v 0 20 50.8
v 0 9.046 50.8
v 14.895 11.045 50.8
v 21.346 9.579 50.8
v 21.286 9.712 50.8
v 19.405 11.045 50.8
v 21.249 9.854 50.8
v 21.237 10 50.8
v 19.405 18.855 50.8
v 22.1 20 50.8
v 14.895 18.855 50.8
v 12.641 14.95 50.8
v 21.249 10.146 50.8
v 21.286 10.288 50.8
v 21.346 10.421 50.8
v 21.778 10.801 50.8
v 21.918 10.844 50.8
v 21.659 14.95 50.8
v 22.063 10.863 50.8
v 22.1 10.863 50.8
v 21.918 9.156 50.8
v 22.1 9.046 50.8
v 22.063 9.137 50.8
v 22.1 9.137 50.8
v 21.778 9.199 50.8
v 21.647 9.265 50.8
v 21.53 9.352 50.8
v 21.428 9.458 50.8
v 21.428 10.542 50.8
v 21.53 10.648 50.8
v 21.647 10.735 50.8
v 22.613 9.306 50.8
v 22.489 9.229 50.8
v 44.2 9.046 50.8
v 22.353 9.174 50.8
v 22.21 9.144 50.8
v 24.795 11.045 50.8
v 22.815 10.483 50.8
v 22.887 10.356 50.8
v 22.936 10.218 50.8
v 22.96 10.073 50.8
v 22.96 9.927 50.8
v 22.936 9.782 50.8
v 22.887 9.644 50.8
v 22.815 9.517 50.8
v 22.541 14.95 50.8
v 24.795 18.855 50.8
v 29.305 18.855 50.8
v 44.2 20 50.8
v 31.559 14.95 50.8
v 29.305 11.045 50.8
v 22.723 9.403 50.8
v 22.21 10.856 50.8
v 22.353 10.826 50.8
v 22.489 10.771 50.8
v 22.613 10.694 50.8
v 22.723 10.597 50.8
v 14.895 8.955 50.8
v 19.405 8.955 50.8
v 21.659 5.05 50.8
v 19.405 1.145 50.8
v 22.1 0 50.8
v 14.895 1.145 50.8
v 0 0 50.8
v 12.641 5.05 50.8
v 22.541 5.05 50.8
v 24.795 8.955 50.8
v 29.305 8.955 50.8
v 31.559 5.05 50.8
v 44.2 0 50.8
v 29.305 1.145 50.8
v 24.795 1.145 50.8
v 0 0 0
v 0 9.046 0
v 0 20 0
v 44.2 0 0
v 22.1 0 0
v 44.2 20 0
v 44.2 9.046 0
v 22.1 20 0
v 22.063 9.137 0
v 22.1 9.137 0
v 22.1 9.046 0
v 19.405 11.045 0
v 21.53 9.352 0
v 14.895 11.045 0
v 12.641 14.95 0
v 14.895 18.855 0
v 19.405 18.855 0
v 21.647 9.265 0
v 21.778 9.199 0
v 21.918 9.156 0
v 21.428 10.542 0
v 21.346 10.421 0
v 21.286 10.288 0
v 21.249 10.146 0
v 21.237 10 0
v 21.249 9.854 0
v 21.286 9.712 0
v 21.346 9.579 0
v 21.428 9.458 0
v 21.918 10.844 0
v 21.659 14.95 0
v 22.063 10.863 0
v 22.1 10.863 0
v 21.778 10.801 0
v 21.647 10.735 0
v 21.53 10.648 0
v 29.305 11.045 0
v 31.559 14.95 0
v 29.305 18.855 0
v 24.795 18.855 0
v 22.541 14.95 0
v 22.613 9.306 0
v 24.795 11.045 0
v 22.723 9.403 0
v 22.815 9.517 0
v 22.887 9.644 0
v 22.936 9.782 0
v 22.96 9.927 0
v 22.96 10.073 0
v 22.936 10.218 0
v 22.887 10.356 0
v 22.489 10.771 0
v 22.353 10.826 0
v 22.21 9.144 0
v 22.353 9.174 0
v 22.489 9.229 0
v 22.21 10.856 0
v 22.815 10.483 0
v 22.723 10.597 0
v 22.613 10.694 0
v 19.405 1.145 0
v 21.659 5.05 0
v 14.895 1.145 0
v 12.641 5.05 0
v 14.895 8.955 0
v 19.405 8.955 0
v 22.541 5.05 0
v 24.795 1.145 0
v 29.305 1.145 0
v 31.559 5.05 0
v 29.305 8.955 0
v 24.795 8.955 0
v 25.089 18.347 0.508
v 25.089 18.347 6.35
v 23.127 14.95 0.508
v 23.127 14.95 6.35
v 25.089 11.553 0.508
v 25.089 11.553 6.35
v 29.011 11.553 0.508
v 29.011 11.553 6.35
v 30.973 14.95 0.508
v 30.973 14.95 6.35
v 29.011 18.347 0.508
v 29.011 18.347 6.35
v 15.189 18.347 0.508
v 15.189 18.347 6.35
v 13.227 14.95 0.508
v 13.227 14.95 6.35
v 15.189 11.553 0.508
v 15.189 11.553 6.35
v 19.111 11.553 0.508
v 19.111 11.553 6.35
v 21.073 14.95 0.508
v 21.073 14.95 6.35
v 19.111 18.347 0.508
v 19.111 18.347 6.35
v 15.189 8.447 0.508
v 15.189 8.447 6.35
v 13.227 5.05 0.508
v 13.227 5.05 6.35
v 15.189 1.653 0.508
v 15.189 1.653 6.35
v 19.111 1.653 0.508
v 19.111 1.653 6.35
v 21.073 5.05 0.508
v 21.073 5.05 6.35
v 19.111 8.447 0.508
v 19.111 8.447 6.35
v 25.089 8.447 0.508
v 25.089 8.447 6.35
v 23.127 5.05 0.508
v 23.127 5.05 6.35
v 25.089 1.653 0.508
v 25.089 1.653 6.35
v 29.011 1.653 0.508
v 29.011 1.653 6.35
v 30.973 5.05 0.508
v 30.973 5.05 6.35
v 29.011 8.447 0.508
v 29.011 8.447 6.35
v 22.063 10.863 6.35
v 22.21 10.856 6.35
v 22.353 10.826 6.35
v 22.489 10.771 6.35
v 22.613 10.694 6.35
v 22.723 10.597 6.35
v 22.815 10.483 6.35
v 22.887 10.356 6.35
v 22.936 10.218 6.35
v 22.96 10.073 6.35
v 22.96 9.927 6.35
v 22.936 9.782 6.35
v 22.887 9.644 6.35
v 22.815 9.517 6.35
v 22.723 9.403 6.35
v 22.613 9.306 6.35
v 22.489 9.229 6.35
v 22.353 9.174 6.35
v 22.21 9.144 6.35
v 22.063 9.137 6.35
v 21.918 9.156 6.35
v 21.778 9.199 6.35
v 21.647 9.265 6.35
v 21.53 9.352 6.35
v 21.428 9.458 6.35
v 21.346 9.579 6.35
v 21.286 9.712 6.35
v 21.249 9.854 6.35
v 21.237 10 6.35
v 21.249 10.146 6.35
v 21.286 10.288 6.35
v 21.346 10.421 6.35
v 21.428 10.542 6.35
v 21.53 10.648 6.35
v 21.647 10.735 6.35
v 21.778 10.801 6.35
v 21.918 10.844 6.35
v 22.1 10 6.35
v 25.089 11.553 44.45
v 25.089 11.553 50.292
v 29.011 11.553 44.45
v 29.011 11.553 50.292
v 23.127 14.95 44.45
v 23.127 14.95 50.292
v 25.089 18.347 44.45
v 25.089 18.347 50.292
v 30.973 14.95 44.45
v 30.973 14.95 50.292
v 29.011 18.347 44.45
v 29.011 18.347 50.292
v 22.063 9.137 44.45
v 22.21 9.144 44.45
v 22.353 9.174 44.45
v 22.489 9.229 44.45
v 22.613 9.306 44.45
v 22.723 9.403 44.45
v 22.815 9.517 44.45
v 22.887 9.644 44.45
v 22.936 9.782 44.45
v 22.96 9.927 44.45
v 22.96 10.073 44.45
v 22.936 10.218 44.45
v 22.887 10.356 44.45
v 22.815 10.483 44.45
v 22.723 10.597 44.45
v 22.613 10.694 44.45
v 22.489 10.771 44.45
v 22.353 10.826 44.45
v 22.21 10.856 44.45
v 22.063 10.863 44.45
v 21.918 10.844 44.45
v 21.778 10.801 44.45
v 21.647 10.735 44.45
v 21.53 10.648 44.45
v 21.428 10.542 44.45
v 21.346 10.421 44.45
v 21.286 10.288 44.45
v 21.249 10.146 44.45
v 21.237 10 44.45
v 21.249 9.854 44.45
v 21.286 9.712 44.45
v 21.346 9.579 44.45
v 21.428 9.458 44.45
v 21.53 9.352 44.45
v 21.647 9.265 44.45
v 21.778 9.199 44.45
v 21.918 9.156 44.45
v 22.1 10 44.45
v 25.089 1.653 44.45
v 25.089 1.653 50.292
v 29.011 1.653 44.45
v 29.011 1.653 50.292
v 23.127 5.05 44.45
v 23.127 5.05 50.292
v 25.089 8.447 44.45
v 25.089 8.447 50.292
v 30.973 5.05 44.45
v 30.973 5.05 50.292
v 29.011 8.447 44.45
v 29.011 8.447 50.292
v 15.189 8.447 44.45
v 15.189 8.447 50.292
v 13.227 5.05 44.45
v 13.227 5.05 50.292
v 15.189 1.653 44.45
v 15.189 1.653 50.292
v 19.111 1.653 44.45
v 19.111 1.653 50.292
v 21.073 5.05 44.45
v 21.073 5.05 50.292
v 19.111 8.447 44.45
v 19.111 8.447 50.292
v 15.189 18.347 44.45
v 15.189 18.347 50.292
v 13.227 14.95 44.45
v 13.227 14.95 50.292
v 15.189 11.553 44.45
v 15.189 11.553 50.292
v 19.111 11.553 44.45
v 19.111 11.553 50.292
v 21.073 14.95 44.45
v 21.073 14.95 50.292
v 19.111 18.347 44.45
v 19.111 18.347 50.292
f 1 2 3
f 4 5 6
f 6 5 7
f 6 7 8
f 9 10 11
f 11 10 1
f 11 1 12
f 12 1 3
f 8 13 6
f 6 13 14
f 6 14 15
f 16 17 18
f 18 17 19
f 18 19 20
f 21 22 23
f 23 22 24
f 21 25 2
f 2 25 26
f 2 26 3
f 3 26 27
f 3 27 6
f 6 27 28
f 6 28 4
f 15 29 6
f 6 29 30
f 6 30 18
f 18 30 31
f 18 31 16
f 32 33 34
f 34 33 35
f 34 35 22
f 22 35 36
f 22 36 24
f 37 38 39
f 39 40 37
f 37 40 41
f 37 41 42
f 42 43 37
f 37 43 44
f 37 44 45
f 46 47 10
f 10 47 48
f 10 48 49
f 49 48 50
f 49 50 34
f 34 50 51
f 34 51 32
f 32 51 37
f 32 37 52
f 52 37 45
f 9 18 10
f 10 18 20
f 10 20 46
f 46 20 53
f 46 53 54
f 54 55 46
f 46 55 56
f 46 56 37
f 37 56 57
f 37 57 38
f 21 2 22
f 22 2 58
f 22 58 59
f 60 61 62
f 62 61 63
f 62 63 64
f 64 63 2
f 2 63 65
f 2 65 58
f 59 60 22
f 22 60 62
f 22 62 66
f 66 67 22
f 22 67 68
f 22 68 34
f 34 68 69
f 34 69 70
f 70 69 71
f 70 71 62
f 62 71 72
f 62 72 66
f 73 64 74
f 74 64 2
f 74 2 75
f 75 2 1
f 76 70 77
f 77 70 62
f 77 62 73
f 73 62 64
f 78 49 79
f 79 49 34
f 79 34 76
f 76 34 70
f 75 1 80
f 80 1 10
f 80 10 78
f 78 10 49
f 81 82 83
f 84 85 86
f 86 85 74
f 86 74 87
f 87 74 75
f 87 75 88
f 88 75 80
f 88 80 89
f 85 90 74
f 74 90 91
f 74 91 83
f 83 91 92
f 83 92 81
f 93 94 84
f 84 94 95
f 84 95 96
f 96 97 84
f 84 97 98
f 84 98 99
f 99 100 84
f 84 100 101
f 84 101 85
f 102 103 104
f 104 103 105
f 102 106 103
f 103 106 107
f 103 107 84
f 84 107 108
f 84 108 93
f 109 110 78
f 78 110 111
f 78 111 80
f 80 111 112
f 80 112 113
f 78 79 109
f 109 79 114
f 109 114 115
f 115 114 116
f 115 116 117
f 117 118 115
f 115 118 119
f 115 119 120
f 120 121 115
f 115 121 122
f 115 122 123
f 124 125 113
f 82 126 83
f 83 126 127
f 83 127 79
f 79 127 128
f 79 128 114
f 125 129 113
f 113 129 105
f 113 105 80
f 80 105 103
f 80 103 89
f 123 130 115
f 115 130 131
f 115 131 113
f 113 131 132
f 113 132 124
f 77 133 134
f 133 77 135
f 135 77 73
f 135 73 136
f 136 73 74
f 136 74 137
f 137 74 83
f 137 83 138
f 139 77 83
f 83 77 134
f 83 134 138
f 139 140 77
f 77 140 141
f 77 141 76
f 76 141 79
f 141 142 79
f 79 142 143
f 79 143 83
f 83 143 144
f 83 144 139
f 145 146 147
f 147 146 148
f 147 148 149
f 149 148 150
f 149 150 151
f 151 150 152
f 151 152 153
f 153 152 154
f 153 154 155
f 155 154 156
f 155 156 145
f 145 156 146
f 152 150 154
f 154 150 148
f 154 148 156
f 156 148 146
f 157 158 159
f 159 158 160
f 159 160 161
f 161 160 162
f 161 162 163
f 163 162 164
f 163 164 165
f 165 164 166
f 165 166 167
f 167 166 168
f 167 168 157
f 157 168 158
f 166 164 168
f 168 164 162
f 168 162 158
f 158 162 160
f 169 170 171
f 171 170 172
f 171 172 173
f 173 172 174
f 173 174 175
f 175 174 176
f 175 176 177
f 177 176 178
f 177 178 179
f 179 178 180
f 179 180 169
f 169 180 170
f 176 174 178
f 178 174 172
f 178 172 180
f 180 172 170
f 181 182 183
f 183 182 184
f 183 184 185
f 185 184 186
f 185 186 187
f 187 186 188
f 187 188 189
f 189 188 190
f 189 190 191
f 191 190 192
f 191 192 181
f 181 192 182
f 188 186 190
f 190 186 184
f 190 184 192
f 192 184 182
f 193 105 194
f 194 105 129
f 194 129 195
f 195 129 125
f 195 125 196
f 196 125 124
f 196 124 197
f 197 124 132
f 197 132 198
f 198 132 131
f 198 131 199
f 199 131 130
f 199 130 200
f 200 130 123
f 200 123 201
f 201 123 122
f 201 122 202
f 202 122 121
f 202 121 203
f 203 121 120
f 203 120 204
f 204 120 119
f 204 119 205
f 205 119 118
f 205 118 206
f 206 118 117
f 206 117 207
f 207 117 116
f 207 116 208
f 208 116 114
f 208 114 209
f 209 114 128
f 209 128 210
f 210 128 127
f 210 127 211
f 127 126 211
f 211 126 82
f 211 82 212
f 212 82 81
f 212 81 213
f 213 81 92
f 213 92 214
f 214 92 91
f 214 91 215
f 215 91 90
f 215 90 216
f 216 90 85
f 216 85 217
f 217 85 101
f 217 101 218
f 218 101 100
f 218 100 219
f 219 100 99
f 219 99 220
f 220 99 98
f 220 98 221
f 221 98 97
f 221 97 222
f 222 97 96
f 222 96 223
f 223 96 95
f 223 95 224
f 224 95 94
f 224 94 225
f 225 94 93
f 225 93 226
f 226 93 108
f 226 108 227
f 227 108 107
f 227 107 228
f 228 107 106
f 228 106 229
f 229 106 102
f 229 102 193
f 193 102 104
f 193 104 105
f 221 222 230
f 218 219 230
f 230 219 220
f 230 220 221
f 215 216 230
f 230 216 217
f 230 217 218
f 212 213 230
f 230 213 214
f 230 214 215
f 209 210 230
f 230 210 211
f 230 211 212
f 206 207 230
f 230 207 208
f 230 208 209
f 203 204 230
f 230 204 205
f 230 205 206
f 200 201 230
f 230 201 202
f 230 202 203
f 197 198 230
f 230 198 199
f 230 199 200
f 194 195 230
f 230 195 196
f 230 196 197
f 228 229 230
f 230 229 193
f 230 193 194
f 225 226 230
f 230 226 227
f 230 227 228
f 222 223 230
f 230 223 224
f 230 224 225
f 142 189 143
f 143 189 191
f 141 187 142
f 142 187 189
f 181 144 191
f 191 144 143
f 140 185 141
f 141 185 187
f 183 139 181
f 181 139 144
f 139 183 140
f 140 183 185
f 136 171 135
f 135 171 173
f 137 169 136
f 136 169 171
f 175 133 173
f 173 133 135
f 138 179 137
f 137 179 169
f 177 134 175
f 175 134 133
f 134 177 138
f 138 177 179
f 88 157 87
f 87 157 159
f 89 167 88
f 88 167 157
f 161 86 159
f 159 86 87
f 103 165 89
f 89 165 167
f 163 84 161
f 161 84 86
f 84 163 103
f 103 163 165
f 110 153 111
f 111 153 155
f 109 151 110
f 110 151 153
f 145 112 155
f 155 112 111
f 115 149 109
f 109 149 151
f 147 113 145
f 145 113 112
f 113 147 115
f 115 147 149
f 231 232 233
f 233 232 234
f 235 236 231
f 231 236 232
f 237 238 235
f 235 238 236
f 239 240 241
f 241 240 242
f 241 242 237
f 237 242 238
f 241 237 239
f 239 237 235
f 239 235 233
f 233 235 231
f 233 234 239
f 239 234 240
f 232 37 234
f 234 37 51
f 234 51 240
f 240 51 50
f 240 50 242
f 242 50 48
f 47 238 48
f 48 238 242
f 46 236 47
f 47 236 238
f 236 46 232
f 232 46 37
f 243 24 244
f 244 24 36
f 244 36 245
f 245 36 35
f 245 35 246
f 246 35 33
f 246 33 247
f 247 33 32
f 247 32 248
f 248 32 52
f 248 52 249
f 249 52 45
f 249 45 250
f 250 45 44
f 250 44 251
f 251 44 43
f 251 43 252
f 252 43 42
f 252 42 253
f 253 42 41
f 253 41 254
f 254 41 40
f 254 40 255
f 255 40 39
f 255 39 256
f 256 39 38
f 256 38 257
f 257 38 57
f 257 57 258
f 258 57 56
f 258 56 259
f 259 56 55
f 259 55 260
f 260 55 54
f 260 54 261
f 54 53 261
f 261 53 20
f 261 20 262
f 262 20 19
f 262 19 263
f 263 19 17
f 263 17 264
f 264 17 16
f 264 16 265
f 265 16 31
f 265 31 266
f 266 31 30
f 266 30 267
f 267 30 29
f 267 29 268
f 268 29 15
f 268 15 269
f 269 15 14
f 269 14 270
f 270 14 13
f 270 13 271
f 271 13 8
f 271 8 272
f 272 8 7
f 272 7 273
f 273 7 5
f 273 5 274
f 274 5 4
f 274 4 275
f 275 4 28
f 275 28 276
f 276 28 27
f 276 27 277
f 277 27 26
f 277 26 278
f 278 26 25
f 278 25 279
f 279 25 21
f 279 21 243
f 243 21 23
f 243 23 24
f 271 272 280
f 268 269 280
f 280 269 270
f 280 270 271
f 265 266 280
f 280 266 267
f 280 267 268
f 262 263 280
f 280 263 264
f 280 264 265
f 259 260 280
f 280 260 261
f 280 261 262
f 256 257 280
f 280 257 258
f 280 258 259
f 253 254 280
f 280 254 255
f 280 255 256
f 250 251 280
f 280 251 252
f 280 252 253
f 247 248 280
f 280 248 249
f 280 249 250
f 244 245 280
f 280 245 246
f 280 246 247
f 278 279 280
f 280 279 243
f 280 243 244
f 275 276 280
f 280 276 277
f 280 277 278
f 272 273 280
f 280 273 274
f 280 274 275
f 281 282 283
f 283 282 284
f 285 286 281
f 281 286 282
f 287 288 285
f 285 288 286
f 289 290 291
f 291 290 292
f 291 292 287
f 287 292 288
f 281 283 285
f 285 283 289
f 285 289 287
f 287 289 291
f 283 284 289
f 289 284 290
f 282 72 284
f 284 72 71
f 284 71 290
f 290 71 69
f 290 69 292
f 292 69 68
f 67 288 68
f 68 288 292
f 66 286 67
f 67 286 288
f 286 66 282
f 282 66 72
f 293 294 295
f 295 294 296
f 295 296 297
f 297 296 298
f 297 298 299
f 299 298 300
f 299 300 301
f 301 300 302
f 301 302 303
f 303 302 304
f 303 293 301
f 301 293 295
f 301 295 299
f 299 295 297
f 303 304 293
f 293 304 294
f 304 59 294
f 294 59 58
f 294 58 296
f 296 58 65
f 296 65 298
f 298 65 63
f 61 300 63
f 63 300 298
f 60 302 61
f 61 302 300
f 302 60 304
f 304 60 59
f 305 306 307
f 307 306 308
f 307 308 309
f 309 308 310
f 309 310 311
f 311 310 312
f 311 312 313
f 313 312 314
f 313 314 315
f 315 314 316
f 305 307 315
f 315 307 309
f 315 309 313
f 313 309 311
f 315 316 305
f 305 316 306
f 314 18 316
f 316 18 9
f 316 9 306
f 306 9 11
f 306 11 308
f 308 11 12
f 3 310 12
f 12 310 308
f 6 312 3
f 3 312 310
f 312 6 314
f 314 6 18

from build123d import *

# Parameters (mm, degrees)
SKETCH1_W                = 44.2
SKETCH1_H                = 20
BOSS_EXTRUDE1_DEPTH      = 50.8
SKETCH2_R                = 0.863384433
CUT_EXTRUDE1_DEPTH       = 6.35
CHAMFER1_SIZE            = 0.508
CHAMFER1_OF_MIRROR2_SIZE = 0.508


with BuildPart() as part:
    # Sketch1 → Boss-Extrude1 (new body)
    with BuildSketch(Plane.XY):
        with Locations((22.1, 10)):
            Rectangle(SKETCH1_W, SKETCH1_H)
    extrude(amount=BOSS_EXTRUDE1_DEPTH)

    # Sketch2 → Cut-Extrude1 (cut)
    with BuildSketch(Plane(origin=(0, 0, 0), x_dir=(-1, 0, 0), z_dir=(0, 0, -1))):
        with Locations((-22.1, 10)):
            Circle(SKETCH2_R)
        Polygon((-25.088596798, 18.34725), (-29.011403202, 18.34725), (-30.972806404, 14.95), (-29.011403202, 11.55275), (-25.088596798, 11.55275), (-23.127193596, 14.95), align=None)
        Polygon((-15.188596798, 18.34725), (-19.111403202, 18.34725), (-21.072806404, 14.95), (-19.111403202, 11.55275), (-15.188596798, 11.55275), (-13.227193596, 14.95), align=None)
        Polygon((-15.188596798, 8.44725), (-19.111403202, 8.44725), (-21.072806404, 5.05), (-19.111403202, 1.65275), (-15.188596798, 1.65275), (-13.227193596, 5.05), align=None)
        Polygon((-25.088596798, 8.44725), (-29.011403202, 8.44725), (-30.972806404, 5.05), (-29.011403202, 1.65275), (-25.088596798, 1.65275), (-23.127193596, 5.05), align=None)
    cut_extrude1 = extrude(amount=-CUT_EXTRUDE1_DEPTH, mode=Mode.SUBTRACT)

    # Chamfer1
    chamfer1_edges = [part.edges().sort_by_distance(p)[0] for p in [
        (24.107895197, 6.748625, 0),
        (27.05, 8.44725, 0),
        (29.992104803, 6.748625, 0),
        (29.992104803, 3.351375, 0),
        (27.05, 1.65275, 0),
        (24.107895197, 3.351375, 0),
        (14.207895197, 6.748625, 0),
        (17.15, 8.44725, 0),
        (20.092104803, 6.748625, 0),
        (20.092104803, 3.351375, 0),
        (17.15, 1.65275, 0),
        (14.207895197, 3.351375, 0),
        (14.207895197, 16.648625, 0),
        (17.15, 18.34725, 0),
        (20.092104803, 16.648625, 0),
        (20.092104803, 13.251375, 0),
        (17.15, 11.55275, 0),
        (14.207895197, 13.251375, 0),
        (24.107895197, 16.648625, 0),
        (27.05, 18.34725, 0),
        (29.992104803, 16.648625, 0),
        (29.992104803, 13.251375, 0),
        (27.05, 11.55275, 0),
        (24.107895197, 13.251375, 0),
    ]]
    chamfer(chamfer1_edges, length=CHAMFER1_SIZE)

    # Mirror2: Cut-Extrude1 across plane
    add(cut_extrude1.mirror(Plane(origin=(0, 0, 25.4), x_dir=(1, 0, 0), z_dir=(0, 0, -1))), mode=Mode.SUBTRACT)

    # Chamfer1 of Mirror2
    chamfer1_of_mirror2_edges = [part.edges().sort_by_distance(p)[0] for p in [
        (24.107895197, 6.748625, 50.8),
        (27.05, 8.44725, 50.8),
        (29.992104803, 6.748625, 50.8),
        (29.992104803, 3.351375, 50.8),
        (27.05, 1.65275, 50.8),
        (24.107895197, 3.351375, 50.8),
        (14.207895197, 6.748625, 50.8),
        (17.15, 8.44725, 50.8),
        (20.092104803, 6.748625, 50.8),
        (20.092104803, 3.351375, 50.8),
        (17.15, 1.65275, 50.8),
        (14.207895197, 3.351375, 50.8),
        (14.207895197, 16.648625, 50.8),
        (17.15, 18.34725, 50.8),
        (20.092104803, 16.648625, 50.8),
        (20.092104803, 13.251375, 50.8),
        (17.15, 11.55275, 50.8),
        (14.207895197, 13.251375, 50.8),
        (24.107895197, 16.648625, 50.8),
        (27.05, 18.34725, 50.8),
        (29.992104803, 16.648625, 50.8),
        (29.992104803, 13.251375, 50.8),
        (27.05, 11.55275, 50.8),
        (24.107895197, 13.251375, 50.8),
    ]]
    chamfer(chamfer1_of_mirror2_edges, length=CHAMFER1_OF_MIRROR2_SIZE)


solid = part.part
